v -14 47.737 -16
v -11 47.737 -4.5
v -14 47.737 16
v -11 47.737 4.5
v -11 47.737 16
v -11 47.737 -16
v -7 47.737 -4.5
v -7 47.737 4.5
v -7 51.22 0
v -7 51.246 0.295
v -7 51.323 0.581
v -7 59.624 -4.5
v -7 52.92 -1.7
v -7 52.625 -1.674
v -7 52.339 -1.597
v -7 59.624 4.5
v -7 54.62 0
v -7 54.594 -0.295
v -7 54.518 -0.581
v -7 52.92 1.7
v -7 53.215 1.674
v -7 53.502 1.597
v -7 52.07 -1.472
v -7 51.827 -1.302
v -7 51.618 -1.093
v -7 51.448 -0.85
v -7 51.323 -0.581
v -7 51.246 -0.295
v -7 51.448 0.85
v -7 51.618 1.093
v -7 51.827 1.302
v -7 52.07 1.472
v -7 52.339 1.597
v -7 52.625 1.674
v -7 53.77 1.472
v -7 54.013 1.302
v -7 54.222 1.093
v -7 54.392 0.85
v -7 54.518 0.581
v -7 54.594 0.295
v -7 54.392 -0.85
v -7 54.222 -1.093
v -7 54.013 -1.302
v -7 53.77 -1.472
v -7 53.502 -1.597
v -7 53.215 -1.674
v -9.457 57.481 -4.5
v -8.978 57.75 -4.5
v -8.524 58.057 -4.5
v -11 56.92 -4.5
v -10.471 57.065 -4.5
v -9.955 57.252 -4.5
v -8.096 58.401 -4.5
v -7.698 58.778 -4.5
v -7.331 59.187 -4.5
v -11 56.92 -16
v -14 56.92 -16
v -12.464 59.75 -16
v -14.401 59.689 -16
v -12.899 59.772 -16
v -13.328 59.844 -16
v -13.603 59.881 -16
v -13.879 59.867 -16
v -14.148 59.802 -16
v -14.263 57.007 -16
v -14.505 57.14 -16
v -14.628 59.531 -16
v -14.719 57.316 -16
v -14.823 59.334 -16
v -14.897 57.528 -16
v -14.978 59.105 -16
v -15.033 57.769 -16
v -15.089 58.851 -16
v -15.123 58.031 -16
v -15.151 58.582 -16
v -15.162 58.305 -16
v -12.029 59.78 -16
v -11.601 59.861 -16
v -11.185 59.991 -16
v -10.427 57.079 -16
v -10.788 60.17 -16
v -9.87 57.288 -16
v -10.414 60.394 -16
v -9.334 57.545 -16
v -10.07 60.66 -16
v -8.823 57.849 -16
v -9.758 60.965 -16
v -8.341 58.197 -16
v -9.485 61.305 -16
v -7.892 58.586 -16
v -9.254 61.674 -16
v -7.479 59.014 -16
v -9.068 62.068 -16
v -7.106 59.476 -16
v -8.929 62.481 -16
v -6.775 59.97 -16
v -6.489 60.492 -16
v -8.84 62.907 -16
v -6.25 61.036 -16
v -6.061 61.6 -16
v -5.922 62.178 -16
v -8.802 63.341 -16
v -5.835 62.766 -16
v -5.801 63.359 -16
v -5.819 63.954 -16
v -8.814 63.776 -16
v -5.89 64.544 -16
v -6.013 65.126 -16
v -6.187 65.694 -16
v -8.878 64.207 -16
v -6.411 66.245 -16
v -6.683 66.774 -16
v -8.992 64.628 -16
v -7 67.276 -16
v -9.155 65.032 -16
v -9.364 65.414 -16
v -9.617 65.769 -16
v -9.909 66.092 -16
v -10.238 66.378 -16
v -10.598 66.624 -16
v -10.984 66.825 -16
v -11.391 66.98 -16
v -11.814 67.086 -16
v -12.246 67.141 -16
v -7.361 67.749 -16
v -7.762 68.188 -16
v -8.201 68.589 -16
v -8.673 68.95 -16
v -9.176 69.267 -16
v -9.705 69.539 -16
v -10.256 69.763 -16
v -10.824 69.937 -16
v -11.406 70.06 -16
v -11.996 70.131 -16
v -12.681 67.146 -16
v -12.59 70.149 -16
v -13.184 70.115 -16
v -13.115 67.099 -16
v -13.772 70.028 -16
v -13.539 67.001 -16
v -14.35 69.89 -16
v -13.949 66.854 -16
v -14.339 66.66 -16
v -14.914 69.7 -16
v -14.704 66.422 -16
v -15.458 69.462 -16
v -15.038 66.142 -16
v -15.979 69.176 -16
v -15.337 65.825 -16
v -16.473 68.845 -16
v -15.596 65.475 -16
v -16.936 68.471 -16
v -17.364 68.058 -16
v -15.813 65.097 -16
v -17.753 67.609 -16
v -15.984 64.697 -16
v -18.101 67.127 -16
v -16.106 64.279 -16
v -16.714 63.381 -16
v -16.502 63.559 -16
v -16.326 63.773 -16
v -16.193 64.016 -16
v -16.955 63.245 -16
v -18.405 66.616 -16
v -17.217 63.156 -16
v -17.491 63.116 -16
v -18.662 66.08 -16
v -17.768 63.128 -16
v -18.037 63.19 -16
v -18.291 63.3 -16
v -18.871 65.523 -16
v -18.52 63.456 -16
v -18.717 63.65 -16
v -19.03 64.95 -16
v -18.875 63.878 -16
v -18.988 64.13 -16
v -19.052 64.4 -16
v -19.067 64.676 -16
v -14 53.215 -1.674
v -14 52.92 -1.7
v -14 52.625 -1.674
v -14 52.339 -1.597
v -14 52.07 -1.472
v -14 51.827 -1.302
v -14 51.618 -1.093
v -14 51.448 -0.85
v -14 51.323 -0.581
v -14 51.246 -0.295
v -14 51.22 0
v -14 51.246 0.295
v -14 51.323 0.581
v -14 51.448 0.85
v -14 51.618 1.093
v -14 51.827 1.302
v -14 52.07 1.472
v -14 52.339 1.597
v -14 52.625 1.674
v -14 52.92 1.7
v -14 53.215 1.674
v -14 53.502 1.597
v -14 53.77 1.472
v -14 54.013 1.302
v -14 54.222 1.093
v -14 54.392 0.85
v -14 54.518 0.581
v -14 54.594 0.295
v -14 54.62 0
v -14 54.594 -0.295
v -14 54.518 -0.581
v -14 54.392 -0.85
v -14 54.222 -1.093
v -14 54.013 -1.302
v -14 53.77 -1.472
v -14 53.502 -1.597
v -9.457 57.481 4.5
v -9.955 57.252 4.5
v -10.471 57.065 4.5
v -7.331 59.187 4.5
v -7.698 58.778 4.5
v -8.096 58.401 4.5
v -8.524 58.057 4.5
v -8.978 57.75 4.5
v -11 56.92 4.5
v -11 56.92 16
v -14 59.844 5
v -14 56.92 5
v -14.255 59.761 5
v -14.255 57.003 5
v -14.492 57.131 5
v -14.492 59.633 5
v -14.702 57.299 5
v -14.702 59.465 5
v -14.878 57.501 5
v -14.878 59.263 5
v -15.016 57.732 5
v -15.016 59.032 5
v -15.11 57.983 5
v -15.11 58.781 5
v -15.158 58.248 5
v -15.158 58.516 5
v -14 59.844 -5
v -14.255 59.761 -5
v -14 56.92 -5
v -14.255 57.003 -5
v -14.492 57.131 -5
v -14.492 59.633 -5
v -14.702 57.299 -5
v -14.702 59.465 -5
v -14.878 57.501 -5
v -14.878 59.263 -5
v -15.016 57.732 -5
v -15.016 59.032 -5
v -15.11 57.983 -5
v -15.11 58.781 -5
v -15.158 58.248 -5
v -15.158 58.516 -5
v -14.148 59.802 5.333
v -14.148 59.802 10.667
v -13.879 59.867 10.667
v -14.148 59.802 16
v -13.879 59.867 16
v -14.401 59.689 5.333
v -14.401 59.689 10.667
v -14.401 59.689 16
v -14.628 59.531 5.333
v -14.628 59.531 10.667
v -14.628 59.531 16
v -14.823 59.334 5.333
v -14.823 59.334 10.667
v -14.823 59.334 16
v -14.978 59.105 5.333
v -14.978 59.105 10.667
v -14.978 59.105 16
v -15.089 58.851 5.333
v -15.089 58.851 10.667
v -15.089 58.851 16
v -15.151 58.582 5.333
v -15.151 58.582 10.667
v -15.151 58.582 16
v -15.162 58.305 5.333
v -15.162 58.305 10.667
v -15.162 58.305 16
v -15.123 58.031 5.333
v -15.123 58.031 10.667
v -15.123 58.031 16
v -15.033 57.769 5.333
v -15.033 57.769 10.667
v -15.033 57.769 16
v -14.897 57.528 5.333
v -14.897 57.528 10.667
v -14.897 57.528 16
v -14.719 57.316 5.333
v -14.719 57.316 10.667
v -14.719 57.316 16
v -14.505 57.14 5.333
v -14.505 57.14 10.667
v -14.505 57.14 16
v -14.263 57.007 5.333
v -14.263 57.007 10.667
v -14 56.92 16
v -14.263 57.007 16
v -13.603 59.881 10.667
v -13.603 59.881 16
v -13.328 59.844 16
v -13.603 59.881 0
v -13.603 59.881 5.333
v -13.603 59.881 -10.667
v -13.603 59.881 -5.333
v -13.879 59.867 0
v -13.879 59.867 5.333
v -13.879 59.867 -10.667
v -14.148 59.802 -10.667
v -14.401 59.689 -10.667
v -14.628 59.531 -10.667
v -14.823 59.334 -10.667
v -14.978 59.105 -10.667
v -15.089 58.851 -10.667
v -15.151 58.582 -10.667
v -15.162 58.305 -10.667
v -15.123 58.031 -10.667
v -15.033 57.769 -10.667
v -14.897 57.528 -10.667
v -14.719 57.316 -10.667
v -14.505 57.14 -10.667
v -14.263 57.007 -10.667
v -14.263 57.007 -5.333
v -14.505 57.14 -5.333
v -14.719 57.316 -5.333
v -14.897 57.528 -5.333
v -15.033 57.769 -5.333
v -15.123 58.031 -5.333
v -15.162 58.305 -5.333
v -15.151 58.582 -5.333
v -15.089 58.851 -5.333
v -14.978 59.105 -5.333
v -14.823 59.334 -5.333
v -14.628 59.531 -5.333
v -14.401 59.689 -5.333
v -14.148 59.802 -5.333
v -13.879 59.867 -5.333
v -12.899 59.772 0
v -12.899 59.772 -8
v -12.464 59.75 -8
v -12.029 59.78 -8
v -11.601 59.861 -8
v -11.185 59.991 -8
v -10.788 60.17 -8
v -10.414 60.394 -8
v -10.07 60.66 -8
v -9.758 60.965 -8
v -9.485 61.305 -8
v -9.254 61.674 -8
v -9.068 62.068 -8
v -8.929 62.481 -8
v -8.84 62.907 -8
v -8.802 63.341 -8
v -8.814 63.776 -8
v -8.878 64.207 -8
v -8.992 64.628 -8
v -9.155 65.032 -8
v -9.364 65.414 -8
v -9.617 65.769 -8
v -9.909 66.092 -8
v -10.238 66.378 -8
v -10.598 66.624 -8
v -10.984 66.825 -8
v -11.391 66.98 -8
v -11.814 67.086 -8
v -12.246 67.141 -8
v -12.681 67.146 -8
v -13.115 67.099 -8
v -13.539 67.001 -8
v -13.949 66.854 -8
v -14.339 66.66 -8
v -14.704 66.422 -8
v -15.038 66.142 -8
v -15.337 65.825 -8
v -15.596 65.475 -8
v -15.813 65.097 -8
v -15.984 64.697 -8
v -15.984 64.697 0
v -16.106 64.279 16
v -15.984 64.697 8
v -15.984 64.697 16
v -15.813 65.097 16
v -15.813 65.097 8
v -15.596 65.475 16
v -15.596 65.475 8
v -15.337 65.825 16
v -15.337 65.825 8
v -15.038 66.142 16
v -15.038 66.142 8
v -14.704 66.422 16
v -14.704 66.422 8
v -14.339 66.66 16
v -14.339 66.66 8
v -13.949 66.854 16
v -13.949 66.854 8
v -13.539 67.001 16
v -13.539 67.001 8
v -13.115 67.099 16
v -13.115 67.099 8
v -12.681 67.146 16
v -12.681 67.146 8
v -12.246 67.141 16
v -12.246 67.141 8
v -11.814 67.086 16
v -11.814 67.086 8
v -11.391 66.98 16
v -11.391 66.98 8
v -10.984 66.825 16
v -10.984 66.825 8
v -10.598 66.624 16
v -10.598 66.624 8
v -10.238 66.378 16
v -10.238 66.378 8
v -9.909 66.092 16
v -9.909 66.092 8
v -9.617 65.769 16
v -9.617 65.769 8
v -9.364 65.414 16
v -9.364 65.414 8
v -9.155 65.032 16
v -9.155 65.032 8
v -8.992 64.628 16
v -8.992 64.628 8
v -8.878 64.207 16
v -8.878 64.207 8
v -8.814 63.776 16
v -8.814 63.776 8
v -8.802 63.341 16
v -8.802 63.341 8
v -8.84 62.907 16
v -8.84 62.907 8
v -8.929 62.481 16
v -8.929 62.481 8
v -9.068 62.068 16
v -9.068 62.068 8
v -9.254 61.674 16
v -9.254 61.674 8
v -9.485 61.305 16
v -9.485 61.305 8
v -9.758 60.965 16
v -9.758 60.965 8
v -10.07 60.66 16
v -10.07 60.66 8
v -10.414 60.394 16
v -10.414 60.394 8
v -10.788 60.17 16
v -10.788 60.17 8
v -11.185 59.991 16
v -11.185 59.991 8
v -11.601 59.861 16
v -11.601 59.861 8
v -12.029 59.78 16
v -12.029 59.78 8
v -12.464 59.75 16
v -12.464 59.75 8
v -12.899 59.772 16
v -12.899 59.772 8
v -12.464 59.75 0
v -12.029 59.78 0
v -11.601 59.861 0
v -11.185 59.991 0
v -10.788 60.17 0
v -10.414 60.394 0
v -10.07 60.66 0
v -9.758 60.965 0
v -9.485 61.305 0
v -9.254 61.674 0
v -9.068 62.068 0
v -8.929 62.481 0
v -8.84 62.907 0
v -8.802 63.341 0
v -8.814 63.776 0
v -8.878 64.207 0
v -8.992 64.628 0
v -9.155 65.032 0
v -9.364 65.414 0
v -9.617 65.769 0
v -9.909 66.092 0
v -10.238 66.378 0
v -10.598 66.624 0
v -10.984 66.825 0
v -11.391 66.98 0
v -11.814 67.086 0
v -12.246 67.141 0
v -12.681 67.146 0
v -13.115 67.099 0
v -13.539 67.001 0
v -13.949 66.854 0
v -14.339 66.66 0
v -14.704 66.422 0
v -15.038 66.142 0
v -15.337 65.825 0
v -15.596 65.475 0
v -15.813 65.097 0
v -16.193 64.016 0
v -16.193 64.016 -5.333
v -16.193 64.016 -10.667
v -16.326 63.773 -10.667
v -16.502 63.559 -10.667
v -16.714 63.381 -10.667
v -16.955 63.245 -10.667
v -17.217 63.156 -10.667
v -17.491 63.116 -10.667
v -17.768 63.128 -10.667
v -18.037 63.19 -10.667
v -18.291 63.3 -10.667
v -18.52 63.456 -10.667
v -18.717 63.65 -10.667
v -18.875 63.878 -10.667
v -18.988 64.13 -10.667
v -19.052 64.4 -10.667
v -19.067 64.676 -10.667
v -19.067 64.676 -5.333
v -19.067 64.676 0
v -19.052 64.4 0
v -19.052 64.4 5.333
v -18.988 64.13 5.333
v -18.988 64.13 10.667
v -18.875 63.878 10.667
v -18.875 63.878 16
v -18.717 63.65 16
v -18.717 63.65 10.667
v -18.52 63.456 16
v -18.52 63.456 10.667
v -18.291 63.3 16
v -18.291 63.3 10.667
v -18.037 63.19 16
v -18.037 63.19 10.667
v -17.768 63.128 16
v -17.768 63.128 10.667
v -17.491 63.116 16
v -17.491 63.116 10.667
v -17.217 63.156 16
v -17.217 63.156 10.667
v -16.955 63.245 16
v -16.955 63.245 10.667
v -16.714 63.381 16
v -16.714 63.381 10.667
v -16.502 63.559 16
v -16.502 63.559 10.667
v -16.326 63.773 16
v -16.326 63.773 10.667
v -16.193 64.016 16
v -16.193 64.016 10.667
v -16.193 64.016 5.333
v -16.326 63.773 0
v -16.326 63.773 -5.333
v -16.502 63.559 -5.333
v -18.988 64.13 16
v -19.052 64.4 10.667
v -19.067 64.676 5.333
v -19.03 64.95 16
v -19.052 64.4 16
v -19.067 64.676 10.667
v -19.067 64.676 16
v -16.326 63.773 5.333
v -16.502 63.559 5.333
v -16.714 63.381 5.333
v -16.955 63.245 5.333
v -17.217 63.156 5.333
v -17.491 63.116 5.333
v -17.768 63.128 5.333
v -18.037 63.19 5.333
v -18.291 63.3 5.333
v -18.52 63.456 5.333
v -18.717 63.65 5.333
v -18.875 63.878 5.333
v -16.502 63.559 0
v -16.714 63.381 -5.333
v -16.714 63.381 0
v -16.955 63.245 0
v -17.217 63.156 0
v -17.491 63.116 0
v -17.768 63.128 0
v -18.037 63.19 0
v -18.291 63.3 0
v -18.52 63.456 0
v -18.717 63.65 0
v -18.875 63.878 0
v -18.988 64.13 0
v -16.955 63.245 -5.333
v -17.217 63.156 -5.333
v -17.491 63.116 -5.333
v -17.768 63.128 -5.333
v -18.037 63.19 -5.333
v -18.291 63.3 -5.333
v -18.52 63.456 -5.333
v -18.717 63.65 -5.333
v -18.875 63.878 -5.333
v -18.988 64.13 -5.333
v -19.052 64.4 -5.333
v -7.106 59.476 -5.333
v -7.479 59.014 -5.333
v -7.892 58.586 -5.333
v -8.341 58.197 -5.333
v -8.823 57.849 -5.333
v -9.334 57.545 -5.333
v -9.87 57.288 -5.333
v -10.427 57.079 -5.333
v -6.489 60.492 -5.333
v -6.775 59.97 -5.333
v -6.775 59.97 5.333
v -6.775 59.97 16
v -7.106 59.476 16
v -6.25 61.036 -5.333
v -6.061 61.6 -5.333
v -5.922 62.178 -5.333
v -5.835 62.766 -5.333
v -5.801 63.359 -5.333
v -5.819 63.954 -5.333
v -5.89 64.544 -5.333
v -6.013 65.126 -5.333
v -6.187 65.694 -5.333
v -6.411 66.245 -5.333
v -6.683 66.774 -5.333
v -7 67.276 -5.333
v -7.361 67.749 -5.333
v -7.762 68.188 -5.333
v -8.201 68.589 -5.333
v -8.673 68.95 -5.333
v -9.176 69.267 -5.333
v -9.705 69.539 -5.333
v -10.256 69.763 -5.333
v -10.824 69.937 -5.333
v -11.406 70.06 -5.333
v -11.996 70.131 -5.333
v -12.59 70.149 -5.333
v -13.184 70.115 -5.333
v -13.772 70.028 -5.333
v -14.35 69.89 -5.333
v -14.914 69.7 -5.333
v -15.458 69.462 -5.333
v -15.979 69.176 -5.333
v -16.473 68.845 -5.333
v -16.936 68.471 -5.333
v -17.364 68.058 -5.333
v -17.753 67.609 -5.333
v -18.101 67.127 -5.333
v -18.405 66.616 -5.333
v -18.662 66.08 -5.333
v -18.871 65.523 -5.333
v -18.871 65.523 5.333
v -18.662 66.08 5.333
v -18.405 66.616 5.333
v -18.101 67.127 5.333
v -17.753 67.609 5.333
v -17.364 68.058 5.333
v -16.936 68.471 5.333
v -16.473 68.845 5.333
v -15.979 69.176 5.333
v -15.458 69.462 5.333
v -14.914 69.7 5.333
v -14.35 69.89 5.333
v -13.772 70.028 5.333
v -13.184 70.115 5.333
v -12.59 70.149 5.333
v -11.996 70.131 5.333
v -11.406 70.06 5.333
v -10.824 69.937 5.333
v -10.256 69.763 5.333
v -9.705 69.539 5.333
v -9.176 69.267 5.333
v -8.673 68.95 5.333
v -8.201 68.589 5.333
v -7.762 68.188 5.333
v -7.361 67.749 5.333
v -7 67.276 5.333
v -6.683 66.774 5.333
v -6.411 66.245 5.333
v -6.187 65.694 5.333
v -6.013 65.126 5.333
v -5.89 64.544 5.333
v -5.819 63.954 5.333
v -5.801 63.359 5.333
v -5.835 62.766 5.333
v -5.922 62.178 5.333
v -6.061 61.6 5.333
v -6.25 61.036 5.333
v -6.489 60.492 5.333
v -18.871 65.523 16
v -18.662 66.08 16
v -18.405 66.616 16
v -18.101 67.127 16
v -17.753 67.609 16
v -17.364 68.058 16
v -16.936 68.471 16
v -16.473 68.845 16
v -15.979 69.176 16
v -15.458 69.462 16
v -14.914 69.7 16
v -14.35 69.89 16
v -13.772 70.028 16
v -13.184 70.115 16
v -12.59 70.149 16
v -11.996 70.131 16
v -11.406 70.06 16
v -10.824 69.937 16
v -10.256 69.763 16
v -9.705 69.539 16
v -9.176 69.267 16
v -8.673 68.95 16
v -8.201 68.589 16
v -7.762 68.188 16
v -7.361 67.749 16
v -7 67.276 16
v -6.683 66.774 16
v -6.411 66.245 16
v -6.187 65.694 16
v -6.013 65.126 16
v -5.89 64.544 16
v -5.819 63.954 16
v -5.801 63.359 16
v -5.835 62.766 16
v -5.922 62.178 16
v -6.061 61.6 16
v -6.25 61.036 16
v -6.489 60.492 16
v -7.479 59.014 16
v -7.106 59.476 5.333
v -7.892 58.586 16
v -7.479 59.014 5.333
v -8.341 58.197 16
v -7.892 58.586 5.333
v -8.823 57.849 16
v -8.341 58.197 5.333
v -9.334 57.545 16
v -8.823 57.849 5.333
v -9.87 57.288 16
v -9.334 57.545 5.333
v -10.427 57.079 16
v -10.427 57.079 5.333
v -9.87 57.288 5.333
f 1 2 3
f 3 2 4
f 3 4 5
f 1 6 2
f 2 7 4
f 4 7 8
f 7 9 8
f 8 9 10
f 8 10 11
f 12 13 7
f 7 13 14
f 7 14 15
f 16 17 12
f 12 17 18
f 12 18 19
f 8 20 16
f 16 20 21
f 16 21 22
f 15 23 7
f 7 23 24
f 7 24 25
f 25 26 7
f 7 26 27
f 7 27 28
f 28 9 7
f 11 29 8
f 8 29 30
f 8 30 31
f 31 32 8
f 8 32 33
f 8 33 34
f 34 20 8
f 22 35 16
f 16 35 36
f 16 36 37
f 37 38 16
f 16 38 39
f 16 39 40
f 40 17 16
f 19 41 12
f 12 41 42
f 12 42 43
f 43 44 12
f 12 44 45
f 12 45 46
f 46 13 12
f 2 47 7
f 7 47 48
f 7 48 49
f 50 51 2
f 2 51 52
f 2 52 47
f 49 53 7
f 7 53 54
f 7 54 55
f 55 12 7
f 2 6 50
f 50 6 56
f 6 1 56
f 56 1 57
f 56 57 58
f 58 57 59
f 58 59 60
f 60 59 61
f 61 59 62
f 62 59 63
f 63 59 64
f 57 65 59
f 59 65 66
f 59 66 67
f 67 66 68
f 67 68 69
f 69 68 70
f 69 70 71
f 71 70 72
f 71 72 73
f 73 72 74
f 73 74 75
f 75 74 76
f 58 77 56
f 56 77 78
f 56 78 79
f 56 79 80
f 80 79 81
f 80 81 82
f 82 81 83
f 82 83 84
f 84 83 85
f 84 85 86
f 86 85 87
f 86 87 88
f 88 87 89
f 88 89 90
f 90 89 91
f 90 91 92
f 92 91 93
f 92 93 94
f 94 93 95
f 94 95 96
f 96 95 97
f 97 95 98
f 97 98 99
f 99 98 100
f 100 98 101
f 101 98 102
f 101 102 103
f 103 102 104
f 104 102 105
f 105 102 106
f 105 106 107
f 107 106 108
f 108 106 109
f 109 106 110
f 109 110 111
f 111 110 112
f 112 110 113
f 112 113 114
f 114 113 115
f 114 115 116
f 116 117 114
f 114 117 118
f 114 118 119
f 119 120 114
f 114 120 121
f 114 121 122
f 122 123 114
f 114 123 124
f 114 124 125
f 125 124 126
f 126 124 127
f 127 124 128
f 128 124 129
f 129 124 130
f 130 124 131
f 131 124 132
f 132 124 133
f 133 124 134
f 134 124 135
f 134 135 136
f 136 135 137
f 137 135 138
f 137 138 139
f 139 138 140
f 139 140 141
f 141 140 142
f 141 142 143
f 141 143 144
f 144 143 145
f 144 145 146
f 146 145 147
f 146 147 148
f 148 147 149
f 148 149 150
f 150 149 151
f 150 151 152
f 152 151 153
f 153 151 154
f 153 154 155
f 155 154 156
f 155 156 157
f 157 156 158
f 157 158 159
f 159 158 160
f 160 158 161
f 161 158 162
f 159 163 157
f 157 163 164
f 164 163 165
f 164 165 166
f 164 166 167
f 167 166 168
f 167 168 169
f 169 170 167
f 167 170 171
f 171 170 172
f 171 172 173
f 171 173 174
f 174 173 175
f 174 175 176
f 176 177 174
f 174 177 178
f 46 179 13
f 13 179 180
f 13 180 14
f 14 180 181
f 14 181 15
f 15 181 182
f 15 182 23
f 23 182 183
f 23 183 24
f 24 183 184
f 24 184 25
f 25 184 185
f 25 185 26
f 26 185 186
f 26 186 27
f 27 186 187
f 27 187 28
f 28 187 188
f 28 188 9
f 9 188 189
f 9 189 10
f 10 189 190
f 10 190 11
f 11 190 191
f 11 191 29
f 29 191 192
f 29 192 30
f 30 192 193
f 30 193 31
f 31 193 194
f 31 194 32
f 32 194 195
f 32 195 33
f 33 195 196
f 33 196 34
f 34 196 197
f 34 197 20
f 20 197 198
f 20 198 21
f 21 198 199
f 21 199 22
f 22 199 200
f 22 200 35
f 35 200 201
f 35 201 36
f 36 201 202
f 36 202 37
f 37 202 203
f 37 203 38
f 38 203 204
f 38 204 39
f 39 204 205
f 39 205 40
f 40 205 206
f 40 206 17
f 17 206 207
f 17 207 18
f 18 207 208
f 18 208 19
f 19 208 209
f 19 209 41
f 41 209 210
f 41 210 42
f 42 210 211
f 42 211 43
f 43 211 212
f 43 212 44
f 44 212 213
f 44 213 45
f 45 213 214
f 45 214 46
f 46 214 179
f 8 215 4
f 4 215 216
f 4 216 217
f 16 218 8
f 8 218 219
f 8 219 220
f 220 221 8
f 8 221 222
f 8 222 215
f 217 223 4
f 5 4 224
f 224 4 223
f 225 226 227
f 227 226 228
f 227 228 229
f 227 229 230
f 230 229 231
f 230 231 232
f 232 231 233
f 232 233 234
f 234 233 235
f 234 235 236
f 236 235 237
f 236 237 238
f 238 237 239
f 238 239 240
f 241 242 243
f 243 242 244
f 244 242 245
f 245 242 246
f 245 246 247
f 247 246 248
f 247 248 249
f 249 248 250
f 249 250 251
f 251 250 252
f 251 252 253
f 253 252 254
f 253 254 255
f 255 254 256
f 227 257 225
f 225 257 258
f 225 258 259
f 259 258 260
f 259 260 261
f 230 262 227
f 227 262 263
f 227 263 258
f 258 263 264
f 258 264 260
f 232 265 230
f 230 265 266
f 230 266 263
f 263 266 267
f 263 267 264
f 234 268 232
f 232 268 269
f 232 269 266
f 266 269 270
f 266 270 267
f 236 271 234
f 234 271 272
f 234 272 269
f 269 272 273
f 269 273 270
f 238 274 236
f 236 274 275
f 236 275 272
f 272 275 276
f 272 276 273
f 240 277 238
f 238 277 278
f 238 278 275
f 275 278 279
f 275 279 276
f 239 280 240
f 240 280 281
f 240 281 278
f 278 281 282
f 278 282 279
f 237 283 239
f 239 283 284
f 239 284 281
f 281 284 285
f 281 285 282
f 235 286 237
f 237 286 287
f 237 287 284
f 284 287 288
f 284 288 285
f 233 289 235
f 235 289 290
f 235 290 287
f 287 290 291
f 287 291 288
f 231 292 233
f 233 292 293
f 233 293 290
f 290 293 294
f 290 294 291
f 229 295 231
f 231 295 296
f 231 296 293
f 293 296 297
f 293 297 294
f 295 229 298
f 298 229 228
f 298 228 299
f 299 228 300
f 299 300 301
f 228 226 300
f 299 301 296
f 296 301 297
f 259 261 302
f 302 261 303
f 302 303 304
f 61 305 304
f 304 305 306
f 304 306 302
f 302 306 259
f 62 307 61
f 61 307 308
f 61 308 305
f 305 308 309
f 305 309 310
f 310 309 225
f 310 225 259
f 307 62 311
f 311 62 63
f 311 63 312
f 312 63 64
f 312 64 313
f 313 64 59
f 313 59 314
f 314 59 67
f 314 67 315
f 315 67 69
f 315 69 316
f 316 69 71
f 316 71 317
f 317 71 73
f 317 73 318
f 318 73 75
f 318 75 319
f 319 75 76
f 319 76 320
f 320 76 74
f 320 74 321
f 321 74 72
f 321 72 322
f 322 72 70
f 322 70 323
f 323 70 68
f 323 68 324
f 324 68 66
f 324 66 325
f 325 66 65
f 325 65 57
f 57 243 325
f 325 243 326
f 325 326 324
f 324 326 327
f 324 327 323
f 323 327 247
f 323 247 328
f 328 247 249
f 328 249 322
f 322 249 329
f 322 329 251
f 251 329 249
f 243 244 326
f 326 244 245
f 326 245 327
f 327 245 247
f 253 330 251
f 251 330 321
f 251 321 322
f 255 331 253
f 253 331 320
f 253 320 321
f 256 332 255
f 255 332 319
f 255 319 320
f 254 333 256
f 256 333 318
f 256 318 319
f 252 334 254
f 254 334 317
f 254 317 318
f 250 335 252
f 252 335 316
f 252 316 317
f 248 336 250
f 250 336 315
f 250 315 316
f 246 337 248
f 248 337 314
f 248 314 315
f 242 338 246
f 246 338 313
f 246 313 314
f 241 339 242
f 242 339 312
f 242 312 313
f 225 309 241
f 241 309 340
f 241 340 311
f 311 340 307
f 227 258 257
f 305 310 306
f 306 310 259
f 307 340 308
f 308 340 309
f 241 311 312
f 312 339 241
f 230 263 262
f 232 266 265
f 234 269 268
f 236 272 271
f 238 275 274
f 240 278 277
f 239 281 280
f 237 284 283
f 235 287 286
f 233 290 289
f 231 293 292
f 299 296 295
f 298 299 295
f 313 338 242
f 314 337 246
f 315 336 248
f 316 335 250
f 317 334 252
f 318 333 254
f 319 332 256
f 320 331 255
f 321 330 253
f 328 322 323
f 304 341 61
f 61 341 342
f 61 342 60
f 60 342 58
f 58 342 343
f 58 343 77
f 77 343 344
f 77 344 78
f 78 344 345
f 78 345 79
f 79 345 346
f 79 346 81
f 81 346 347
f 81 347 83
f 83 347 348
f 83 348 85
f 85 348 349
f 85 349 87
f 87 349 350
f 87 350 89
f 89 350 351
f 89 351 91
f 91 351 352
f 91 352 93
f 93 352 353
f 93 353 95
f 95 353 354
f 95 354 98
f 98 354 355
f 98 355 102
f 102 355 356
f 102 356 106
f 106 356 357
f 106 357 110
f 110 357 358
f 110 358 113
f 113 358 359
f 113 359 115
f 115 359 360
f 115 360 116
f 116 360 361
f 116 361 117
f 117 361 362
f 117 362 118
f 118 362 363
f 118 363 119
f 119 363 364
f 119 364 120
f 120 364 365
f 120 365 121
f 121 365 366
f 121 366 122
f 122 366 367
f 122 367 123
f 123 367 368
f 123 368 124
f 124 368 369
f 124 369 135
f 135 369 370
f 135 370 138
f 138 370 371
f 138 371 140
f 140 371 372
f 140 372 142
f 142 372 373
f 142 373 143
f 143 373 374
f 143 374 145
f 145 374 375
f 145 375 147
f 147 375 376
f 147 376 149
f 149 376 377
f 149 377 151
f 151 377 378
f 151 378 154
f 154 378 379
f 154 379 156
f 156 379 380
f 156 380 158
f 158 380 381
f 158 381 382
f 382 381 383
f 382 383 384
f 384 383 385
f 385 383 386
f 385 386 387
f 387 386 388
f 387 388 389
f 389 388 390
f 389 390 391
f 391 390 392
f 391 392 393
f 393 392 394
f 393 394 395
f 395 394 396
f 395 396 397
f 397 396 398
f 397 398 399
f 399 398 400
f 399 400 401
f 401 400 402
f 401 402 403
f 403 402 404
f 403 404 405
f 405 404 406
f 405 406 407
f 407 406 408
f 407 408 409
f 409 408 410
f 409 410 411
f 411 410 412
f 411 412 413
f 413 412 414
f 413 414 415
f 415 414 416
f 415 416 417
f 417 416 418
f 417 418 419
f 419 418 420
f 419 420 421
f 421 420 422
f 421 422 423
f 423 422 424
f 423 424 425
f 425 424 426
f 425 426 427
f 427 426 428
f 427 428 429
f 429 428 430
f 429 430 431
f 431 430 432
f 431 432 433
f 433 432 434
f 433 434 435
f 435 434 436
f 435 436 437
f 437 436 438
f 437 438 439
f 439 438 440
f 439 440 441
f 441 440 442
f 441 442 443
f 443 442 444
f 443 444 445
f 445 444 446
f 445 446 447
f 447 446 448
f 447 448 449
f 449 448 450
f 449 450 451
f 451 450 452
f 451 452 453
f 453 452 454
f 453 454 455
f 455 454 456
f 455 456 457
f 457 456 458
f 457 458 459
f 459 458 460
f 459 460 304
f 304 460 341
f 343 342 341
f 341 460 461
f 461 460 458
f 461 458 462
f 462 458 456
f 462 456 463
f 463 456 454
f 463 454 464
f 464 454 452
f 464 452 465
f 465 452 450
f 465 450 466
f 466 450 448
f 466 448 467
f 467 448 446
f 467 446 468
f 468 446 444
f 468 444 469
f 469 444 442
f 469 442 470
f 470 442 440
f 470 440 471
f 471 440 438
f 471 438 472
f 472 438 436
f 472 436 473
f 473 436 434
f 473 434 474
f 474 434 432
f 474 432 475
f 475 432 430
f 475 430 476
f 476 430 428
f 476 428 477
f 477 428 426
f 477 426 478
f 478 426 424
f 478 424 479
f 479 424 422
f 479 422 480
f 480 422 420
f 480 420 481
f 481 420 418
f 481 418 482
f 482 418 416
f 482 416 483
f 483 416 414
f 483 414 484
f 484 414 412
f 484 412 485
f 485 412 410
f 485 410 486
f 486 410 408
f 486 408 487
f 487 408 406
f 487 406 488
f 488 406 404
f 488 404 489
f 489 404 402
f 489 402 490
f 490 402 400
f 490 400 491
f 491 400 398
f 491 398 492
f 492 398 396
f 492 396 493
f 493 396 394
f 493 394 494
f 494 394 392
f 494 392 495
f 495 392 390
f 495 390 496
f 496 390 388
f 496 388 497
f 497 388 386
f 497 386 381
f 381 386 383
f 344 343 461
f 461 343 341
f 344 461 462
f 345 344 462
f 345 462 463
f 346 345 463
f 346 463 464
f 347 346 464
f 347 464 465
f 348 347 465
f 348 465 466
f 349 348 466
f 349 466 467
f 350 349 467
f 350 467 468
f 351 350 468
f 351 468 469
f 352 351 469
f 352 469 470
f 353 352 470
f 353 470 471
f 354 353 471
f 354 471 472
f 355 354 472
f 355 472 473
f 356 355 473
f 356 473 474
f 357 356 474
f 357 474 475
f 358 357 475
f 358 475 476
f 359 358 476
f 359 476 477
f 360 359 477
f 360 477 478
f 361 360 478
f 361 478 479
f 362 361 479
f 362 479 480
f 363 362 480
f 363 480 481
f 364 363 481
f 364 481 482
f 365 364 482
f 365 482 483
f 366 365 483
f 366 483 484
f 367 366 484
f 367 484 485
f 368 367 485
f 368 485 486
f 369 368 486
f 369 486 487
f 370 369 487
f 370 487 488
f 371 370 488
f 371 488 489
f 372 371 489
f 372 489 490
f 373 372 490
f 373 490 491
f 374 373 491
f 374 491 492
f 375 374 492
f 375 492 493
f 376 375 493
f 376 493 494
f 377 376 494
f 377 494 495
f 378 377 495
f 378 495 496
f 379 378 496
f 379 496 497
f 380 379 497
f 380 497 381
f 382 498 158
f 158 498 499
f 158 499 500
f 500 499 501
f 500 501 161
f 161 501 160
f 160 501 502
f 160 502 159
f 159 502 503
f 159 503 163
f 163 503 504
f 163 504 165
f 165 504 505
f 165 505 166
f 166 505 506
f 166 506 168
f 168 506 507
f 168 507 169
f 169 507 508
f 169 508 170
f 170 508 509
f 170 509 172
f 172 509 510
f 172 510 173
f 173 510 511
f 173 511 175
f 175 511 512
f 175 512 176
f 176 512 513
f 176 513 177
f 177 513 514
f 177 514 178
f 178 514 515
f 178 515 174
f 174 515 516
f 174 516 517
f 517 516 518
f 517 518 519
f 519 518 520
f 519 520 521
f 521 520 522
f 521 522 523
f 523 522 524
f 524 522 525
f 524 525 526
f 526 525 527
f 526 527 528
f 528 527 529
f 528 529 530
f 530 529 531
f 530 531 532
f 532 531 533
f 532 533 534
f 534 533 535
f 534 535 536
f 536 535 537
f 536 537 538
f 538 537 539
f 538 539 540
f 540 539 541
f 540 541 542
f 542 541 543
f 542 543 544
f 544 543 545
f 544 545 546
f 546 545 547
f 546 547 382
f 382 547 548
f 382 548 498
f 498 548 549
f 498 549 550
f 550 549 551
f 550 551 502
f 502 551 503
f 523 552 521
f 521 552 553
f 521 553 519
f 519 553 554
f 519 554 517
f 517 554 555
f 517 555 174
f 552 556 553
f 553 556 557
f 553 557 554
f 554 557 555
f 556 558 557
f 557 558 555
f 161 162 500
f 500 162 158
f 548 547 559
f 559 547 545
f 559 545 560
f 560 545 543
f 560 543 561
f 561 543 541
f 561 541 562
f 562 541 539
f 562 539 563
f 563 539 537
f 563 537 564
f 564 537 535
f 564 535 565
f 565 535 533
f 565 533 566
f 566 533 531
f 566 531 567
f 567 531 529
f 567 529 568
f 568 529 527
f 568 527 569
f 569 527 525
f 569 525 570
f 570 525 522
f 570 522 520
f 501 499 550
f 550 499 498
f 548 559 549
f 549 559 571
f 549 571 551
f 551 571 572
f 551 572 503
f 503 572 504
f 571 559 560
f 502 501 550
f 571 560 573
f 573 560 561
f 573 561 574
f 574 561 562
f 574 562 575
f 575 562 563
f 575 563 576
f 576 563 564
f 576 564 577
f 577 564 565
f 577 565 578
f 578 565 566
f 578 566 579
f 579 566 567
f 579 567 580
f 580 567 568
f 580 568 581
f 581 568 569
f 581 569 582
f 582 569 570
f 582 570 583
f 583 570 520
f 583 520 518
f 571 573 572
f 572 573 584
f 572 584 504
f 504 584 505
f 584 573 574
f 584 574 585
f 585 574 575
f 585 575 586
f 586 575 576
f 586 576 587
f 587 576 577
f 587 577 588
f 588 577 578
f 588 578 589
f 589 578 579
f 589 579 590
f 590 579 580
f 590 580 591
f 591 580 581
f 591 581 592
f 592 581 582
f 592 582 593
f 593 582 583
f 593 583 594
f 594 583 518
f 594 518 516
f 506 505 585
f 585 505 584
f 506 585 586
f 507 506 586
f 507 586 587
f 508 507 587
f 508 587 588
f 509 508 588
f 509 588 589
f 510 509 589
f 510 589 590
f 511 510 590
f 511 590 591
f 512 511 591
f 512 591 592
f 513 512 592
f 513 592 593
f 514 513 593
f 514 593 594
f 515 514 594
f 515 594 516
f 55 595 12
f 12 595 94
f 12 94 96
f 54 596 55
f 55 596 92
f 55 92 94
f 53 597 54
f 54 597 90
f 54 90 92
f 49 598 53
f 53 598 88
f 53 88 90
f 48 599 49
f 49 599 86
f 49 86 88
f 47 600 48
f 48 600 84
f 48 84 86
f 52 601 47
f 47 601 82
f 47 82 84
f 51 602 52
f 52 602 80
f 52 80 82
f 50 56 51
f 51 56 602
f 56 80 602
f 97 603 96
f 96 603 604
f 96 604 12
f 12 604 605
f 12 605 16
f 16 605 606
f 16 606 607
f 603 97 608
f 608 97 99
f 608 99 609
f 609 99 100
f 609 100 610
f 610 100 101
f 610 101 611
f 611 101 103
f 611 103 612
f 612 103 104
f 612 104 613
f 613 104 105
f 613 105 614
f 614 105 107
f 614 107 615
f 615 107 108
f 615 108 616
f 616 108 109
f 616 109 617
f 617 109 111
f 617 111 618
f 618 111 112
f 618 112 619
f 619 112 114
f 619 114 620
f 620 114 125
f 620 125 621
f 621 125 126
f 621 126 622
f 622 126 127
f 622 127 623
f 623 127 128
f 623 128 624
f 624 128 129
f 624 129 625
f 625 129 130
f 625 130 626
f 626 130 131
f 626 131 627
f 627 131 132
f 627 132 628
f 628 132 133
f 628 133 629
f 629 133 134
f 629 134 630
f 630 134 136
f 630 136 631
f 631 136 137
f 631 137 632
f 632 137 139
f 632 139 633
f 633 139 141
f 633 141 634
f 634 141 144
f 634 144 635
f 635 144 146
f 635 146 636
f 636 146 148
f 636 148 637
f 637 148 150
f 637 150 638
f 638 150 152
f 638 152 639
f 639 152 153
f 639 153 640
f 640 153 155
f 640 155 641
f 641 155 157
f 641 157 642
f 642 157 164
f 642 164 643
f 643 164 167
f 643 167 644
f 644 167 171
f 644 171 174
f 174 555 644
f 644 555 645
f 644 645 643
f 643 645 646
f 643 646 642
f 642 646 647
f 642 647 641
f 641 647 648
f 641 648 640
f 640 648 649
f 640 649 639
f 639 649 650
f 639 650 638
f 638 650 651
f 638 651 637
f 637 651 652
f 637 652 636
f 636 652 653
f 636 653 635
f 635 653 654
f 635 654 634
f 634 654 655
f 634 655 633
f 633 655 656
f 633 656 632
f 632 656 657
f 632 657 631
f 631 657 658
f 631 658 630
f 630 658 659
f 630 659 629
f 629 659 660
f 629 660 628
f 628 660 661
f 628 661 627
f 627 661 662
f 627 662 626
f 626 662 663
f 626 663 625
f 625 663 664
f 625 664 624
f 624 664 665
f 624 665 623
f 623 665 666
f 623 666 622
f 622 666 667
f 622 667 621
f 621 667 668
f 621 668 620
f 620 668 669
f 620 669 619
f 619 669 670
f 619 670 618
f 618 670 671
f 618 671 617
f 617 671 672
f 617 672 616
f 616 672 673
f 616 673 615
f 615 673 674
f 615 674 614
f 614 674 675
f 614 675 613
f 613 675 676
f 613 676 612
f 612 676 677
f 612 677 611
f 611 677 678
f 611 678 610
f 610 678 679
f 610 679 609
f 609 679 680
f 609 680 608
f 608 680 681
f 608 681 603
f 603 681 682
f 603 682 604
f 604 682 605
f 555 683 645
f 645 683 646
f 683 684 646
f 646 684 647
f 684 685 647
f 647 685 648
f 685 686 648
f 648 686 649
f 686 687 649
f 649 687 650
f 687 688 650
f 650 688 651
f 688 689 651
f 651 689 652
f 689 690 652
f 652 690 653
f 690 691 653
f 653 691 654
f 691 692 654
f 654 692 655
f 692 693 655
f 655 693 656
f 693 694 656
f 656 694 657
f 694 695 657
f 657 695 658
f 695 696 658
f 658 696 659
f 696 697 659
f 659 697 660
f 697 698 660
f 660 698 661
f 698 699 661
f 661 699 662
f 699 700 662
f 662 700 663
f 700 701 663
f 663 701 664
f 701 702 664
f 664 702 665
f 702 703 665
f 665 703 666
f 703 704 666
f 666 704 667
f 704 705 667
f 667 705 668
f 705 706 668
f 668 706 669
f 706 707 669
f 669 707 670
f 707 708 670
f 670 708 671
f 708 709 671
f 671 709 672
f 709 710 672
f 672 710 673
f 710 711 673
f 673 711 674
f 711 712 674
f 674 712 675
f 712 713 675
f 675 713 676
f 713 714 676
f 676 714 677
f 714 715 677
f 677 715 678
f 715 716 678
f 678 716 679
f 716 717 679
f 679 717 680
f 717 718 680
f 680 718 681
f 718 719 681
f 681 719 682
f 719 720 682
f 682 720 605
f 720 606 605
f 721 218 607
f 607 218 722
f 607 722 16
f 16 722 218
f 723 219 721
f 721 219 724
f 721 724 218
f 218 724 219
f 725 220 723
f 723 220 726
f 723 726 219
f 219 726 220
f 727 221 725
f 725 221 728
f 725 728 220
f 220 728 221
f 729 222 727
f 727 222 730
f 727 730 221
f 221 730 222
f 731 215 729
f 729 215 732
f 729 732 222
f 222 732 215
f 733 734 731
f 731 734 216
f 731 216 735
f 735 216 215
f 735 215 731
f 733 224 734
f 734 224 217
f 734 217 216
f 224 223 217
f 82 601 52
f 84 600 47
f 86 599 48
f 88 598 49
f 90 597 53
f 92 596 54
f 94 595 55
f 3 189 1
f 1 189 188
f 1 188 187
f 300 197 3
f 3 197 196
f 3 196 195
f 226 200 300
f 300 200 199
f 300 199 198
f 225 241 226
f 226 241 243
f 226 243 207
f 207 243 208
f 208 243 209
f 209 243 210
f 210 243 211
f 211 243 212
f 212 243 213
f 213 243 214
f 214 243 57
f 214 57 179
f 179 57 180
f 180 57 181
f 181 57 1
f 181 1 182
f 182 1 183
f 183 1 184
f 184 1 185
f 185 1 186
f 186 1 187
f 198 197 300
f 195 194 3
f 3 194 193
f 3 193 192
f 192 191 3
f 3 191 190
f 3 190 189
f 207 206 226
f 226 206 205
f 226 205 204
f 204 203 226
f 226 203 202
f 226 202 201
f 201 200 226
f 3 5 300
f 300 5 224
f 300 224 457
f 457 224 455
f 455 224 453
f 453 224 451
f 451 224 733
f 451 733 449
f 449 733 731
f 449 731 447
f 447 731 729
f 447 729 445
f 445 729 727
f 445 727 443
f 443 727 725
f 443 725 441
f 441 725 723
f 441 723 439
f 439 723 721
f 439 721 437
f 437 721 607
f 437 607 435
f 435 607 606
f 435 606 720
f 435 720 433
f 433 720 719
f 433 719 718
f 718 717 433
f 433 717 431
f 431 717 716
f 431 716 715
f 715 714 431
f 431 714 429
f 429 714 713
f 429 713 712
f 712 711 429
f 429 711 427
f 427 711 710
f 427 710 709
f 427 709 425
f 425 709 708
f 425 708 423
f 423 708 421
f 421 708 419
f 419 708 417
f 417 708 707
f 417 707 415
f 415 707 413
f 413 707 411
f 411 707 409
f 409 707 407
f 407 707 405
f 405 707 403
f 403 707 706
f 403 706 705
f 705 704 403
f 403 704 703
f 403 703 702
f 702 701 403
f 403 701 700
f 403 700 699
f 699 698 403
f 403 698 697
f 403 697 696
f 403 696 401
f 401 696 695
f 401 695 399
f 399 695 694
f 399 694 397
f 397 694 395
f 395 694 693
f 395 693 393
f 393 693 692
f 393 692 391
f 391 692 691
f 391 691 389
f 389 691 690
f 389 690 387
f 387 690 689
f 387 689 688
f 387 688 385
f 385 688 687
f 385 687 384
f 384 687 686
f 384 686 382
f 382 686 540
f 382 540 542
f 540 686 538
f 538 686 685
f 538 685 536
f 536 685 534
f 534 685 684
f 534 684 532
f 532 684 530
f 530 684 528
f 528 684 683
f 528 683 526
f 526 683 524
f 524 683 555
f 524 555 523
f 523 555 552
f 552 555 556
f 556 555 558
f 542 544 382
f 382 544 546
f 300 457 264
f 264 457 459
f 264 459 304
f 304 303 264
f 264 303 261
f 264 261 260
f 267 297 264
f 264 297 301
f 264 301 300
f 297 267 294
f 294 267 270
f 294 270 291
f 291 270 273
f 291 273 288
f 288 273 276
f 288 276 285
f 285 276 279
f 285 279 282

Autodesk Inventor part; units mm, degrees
ref_plane "YZ Plane" through (0, 0, 0) normal (1, 0, 0) x (0, 1, 0)
sketch "Sketch1" plane through (0, 0, 0) normal (0, 1, 0) x (-1, 0, 0)
  line L0 (11, -16) -> (-11, -16)
  line L1 (-11, -16) -> (-11, 16)
  line L2 (-11, 16) -> (11, 16)
  line L3 (11, 16) -> (11, -16)
  line L4 (11, -16) -> (-11, 16) construction
  line L5 (-11, -16) -> (11, 16) construction
  circle A0 centre (-2, 6.5) radius 4.8
  line L6 (-2, 6.5) -> (-2, -6.5)
  circle A1 centre (-2, -6.5) radius 4.8
  line L7 (-2, 11.3) -> (-11, 11.3)
  line L8 (-2, 1.7) -> (-11, 1.7)
  line L9 (-2, -1.7) -> (-11, -1.7)
  line L10 (-2, -11.3) -> (-11, -11.3)
  point P0 (0, 0)
  point P1 (-2, 0)
  dimension "d0" = 22
  dimension "d1" = 32
  dimension "d2" = 9.6
  dimension "d3" = 13
  dimension "d4" = 9.6
extrude "Extrusion1" add sketch "Sketch1" along normal blind 2 contours L0 L1 L10 A1 L6 A0 L7 L2 L3 | L1 L8 L6 L9
sketch "Sketch2" plane through (0, 0, 0) normal (0, -1, 0) x (1, 0, 0)
  line L0 (-11, 16) -> (11, 16) projected
  line L1 (11, 16) -> (-11, 16)
  line L2 (-11, -16) -> (-11, 16) projected
  line L3 (-11, 16) -> (-11, -16)
  line L4 (11, -16) -> (-11, -16) projected
  line L5 (-11, -16) -> (11, -16)
  line L6 (11, -16) -> (11, -14)
  line L7 (11, -11.3) -> (11, -16) projected
  line L8 (11, -14) -> (-5, -14)
  line L9 (-5, -14) -> (-5, 14)
  line L10 (-5, 14) -> (11, 14)
  line L11 (11, 16) -> (11, 11.3) projected
  point P0 (0, 0)
  dimension "d7" = 2
  dimension "d8" = 16
  dimension "d9" = 28
extrude "Extrusion2" add sketch "Sketch2" along normal blind 2.75
sketch "Sketch3" plane through (-11, 2, -16) normal (-1, 0, 0) x (0, 0, 1)
  line L0 (0, 0) -> (0, -4.75) projected
  line L1 (0, -4.75) -> (32, -4.75)
  line L2 (32, -4.75) -> (32, 49.75)
  line L3 (32, 49.75) -> (0, 49.75)
  line L4 (0, 49.75) -> (0, -4.75)
  point P0 (16, -2)
  dimension "d12" = 54.5
extrude "Extrusion3" add sketch "Sketch3" along normal blind 3
sketch "Sketch4" plane through (0, -2.75, 0) normal (0, -1, 0) x (1, 0, 0)
  line L0 (11, 16) -> (11, 11.3) projected
  line L1 (11, 16) -> (-39, 16)
  line L2 (-39, 16) -> (-39, -16)
  line L3 (-39, -16) -> (11, -16)
  line L4 (11, -16) -> (11, 16)
  point P0 (0, 0)
  dimension "d15" = 50
extrude "Extrusion4" add sketch "Sketch4" along normal blind 2
sketch "Sketch5" plane through (-5, 0, 14) normal (1, 0, 0) x (0, 0, -1)
  line L0 (0, 0) -> (0, -2.75) projected
  line L1 (30, -2.75) -> (-2, -2.75) projected
  line L2 (0, 0) -> (2.9896, 0)
  line L3 (2.9896, 0) -> (2.9896, -2.75)
  line L4 (2.9896, -2.75) -> (0, -2.5)
  line L5 (0, -2.5) -> (0, 0)
  point P0 (14, 0)
  dimension "d18" = 3
extrude "Extrusion5" cut sketch "Sketch5" against normal up to surface (9 mm away)
sketch "Sketch6" plane through (11, 0, 1.7) normal (1, 0, 0) x (0, 0, -1)
  line L0 (0, 0) -> (0, 2) projected
  line L1 (3.4, 0) -> (3.4, 2) projected
  line L2 (0, 1) -> (3.4, 1)
  line L3 (3.4, 1) -> (3.4, 2)
  line L4 (3.4, 2) -> (0, 2)
  line L5 (0, 2) -> (0, 1)
  point P0 (1.7, 0)
extrude "Extrusion6" cut sketch "Sketch6" against normal blind 2.2
sketch "Sketch8" plane through (-14, 2, -16) normal (-1, 0, 0) x (0, 0, 1)
  circle A0 centre (24.6, 39.75) radius 2.75
  circle A1 centre (24.6, 39.75) radius 1.4
  line L0 (4, 47.25) -> (28, 47.25) construction
  line L1 (28, 47.25) -> (28, -1.75) construction
  line L2 (28, -1.75) -> (4, -1.75) construction
  line L3 (4, -1.75) -> (4, 47.25) construction
  circle A2 centre (7.4, 5.75) radius 2.75
  circle A3 centre (7.4, 5.75) radius 1.4
  line L4 (4, 47.25) -> (28, -1.75) construction
  line L5 (32, -4.75) -> (32, -6.75) construction
  line L6 (32, 49.75) -> (0, 49.75) construction
  line L7 (0, -4.75) -> (32, 49.75) construction
  point P0 (16, -2)
  point P1 (16, 22.75)
  point P2 (16, 22.5)
  dimension "d24" = 5.5
  dimension "d25" = 2.8
  dimension "d26" = 24
  dimension "d27" = 49
  dimension "d28" = 3.4
  dimension "d29" = 7.5
  dimension "d30" = 5.5
  dimension "d31" = 2.8
  dimension "d32" = 3.4
  dimension "d33" = 7.5
extrude "Extrusion7" add sketch "Sketch8" along normal blind 7
sketch "Sketch9" plane through (0, 0, 0) normal (0, 0, 1) x (1, 0, 0)
  line L0 (-14, -2.75) -> (-14, 51.75) projected
  line L1 (-12.5, 56.75) -> (-12.5, 54.25) construction
  line L2 (-12.25, 56.75) -> (-12.25, 54.25)
  line L3 (-12.25, 54.25) -> (-12.75, 54.25)
  line L4 (-12.75, 54.25) -> (-12.75, 56.75)
  line L5 (-12.75, 56.75) -> (-12.25, 54.25) construction
  line L6 (-12.25, 56.75) -> (-12.75, 54.25) construction
  circle A0 centre (-12.5, 63.45) radius 6.7
  line L7 (-12.5, 63.45) -> (-12.5, 56.75) construction
  line L8 (-12.25, 56.75) -> (-12.25, 59.7585)
  line L9 (-12.75, 59.7585) -> (-12.75, 56.75)
  line L10 (-12.25, 59.7585) -> (-12.25, 70.1453)
  line L11 (-12.25, 70.1453) -> (-12.75, 70.1453)
  line L12 (-12.75, 70.1453) -> (-12.75, 59.7585)
  line L13 (-12.5, 63.45) -> (-5.8, 63.45) construction
  line L14 (-12.5, 63.45) -> (-5.8, 63.45) construction
  line L15 (-11, 51.75) -> (-14, 51.75) projected
  line L16 (-14, 51.75) -> (-11, 51.75)
  line L17 (-11, 51.75) -> (-11, 56.75)
  line L18 (-11, 56.75) -> (-14, 56.75)
  line L19 (-14, 56.75) -> (-14, 51.75)
  line L20 (-14, 56.75) -> (-11, 56.75)
  line L21 (-11, 56.75) -> (-11, 56.9201)
  line L22 (-11, 56.9201) -> (-14, 56.9201)
  line L23 (-14, 56.9201) -> (-14, 56.75)
  line L24 (-12.5, 63.45) -> (-5.8, 63.45) construction
  line L25 (-12.5, 63.45) -> (-5.8, 63.45) construction
  line L26 (-12.5, 63.45) -> (-5.8, 63.45) construction
  circle A1 centre (-12.5, 63.45) radius 3.7
  line L27 (-14, 56.9201) -> (-13.3284, 59.8439)
  line L28 (-12.5, 63.45) -> (-5.8, 63.45) construction
  circle A2 centre (-13.6642, 58.382) radius 1.5
  line L29 (-12.5, 63.45) -> (-7.7359, 63.45) construction
  line L30 (-19.0299, 64.9503) -> (-16.106, 64.2785)
  circle A3 centre (-17.5679, 64.6144) radius 1.5
  point P0 (0, 0)
  point P1 (-12.5, 55.5)
  point P2 (-12.75, 56.7547)
  point P3 (-12.25, 56.7547)
  point P4 (-19.2, 63.45)
  point P5 (-17.2376, 68.1876)
  dimension "d47" = 0.5
  dimension "d50" = 5
  dimension "d128" = 7.4
  dimension "d130" = 13.4
extrude "Extrusion8" add sketch "Sketch9" along normal mid plane 32 contours L18 L17 L15 L19 L4 L3 L2 | L18 A0 L8 | L8 A0 L21 L18 | L2 L3 L4 L18 | L8 L22 A0 | A0 L9 L22 L8 | L18 L9 A0 | L22 L8 A2 A1 L10 A0 | L22 L9 A2 L8 | L9 L18 L23 A0 | A0 A2 L22 L9 | A2 L9 L8 | L8 A2 | L22 A2 L9 | L27 A2 L9 L22 | A2 L27 | L22 A2 | L11 A0 | L10 A1 L12 L11 | A2 L9 A1 L8 | A3 L30 | A0 L12 A1 A3 | L30 A3 | A1 L9 A2
sketch "Sketch10" plane through (-11, 2, 16) normal (0, 0, 1) x (1, 0, 0)
  line L0 (-1.25, 52.25) -> (-1.25, 37.25)
  line L1 (-1.25, 37.25) -> (-1.75, 37.25)
  line L2 (-1.75, 37.25) -> (-1.75, 52.25)
  arc A0 (-2.2836, 58.0388) -> (-4.9111, 62.2338) centre (-1.5, 61.45) ccw projected
  line L3 (-1.75, 37.25) -> (19.102, 37.25) construction
  arc A1 (-2.2836, 58.0388) -> (-4.9111, 62.2338) centre (-1.5, 61.45) ccw projected
  line L4 (-1.25, 37.25) -> (19.602, 37.25) construction
  point P0 (11, -2)
  point P1 (-3.9749, 63.9249)
  point P2 (-1.75, 57.9589)
  point P3 (-1.25, 57.9589)
  point P4 (0.9749, 63.9249)
  point P5 (-5, 61.45)
  dimension "d51" = 15
extrude "Extrusion9" [suppressed]
sketch "Sketch11" plane through (0, 0, 0) normal (0, 0, 1) x (1, 0, 0)
  line L0 (-12.5, 63.45) -> (-18.3024, 60.1)
  line L1 (-14, 56.9201) -> (-14, 62.9804)
  circle A0 centre (-12.5, 63.45) radius 6.7
  point P0 (0, 0)
  point P1 (-14, 62.584)
extrude "Extrusion10" cut sketch "Sketch11" along normal mid plane 10 contours L1 A0 L0 picked at (-14.4333, 58.9557)
sketch "Sketch13" plane through (0, 2, 0) normal (0, 1, 0) x (1, 0, 0)
  line L0 (-11, 16) -> (-11, -16) projected
  line L1 (-11, 0) -> (-9, 0) construction
  line L2 (-11, 4.5) -> (-7, 4.5)
  line L3 (-7, 4.5) -> (-7, -4.5)
  line L4 (-7, -4.5) -> (-11, -4.5)
  line L5 (-11, -4.5) -> (-11, 4.5)
  line L6 (-11, 4.5) -> (-7, -4.5) construction
  line L7 (-7, 4.5) -> (-11, -4.5) construction
  point P0 (0, 0)
  point P1 (-11, -4.5)
  dimension "d66" = 2
  dimension "d67" = 4
  dimension "d68" = 9
extrude "Extrusion12" add sketch "Sketch13" along normal up to surface
sketch "Sketch12" plane through (-14, 2, -16) normal (-1, 0, 0) x (0, 0, 1)
  line L0 (0, 54.9201) -> (32, 54.9201) projected
  line L1 (16, 54.9201) -> (16, 50.9201) construction
  circle A0 centre (16, 50.9201) radius 1.7
  point P0 (16, -2)
  dimension "d62" = 4
  dimension "d63" = 3.4
extrude "Extrusion11" cut sketch "Sketch12" against normal through all
sketch "Sketch14" plane through (-7, 2, 4.5) normal (1, 0, 0) x (0, 0, -1)
  circle A0 centre (4.5, 50.9201) radius 2.9
  point P0 (4.5, -2)
  point P1 (4.5, 50.9201)
  dimension "d96" = 5.8
extrude "Extrusion13" [suppressed]
sketch "Sketch15" plane through (-14, 2, -16) normal (-1, 0, 0) x (0, 0, 1)
  line L0 (0, 28.85) -> (6, 28.85) construction
  line L1 (6, 28.85) -> (6, 16.65) construction
  line L2 (6, 16.65) -> (0, 16.65) construction
  line L3 (0, 16.65) -> (0, 28.85) construction
  line L4 (0, -4.75) -> (0, 54.9201) projected
  line L5 (0, 28.85) -> (6, 28.85)
  line L6 (6, 28.85) -> (6, 30.85)
  line L7 (6, 30.85) -> (0, 30.85)
  line L8 (0, 30.85) -> (0, 28.85)
  line L9 (6, 16.65) -> (0, 16.65)
  line L10 (0, 16.65) -> (0, 14.65)
  line L11 (0, 14.65) -> (6, 14.65)
  line L12 (6, 14.65) -> (6, 16.65)
  circle A0 centre (24.6, 39.75) radius 1.4 projected
  circle A1 centre (7.4, 5.75) radius 1.4 projected
  line L13 (24.6, 39.75) -> (7.4, 5.75)
  line L14 (16, 22.75) -> (-10.8534, 22.75) construction
  line L15 (6, 30.85) -> (8, 30.85)
  line L16 (8, 30.85) -> (8, 14.65)
  line L17 (8, 14.65) -> (6, 14.65)
  line L18 (6, 14.65) -> (6, 30.85)
  point P0 (16, -2)
  point P1 (0, 22.75)
  dimension "d78" = 6
  dimension "d79" = 12.2
  dimension "d80" = 2
  dimension "d81" = 2
  dimension "d101" = 2
extrude "Extrusion14" add sketch "Sketch15" along normal blind 6 contours L4 L9 L12 L11 | L4 L7 L6 L5
sketch "Sketch20" plane through (-14, 2, -16) normal (-1, 0, 0) x (0, 0, 1)
  line L0 (6, 14.65) -> (6, 16.65) projected
  line L1 (6.0001, 28.8153) -> (6, 16.65) construction
  line L2 (5, 22.75) -> (6, 22.75) construction
  line L3 (5, 24.75) -> (7, 24.75)
  line L4 (7, 24.75) -> (7, 20.75)
  line L5 (7, 20.75) -> (5, 20.75)
  line L6 (5, 20.75) -> (5, 24.75)
  line L7 (5, 24.75) -> (7, 20.75) construction
  line L8 (7, 24.75) -> (5, 20.75) construction
  line L9 (0, 16.65) -> (0, 28.85) projected
  line L10 (0, 22.75) -> (5, 22.75) construction
  point P0 (16, -2)
  dimension "d102" = 1
  dimension "d103" = 2
  dimension "d104" = 4
  dimension "d109" = 5
extrude "Extrusion17" add sketch "Sketch20" along normal blind 1
sketch "Sketch21" plane through (-20, 2, -16) normal (-1, 0, 0) x (0, 0, 1)
  line L0 (0, 54.9201) -> (0, 0) projected
  line L1 (6, 16.65) -> (6, 14.65) projected
  line L2 (0, 30.85) -> (6, 30.85)
  line L3 (6, 30.85) -> (6, 14.65)
  line L4 (6, 14.65) -> (0, 14.65)
  line L5 (0, 14.65) -> (0, 30.85)
  line L6 (6, 30.85) -> (0, 30.85) projected
  point P0 (16, -2)
  point P1 (0, 14.65)
extrude "Extrusion18" add sketch "Sketch21" along normal blind 1
ref_plane "Work Plane1" through (0, -19.75, 0) normal (0, -1, 0) x (1, 0, 0)
sketch "Sketch16" plane through (0, -19.75, 0) normal (0, -1, 0) x (1, 0, 0)
  line L0 (11, -16) -> (11, 16) projected
  line L1 (11, 16) -> (-39, 16) projected
  line L2 (-39, 16) -> (-39, -16) projected
  line L3 (-39, -16) -> (11, -16) projected
  line L4 (-39, -16) -> (11, -16) projected
  line L5 (-14, 16) -> (-39, 16) projected
  line L6 (11, -16) -> (-39, 16) construction
  circle A0 centre (-14, 0) radius 10.4
  circle A1 centre (-14, 0) radius 13.4
  point P0 (0, 0)
  dimension "d85" = 20.8
  dimension "d86" = 26.8
extrude "Extrusion15" add sketch "Sketch16" along normal blind 40 contours A1
sketch "Sketch17" plane through (0, -4.75, 0) normal (0, -1, 0) x (1, 0, 0)
  line L0 (11, -16) -> (11, 16) projected
  line L1 (11, 16) -> (-39, 16) projected
  line L2 (-39, 16) -> (-39, -16) projected
  line L3 (-39, -16) -> (11, -16) projected
  point P0 (0, 0)
loft "Loft1" add profiles "Sketch17" section 1 edges at (-27.4, -19.75, 0)
sketch "Sketch18" plane through (0, 0, 0) normal (0, 0, 1) x (1, 0, 0)
  line L0 (-3.6, -19.75) -> (-24.4, -19.75) projected
  line L1 (-14, -19.75) -> (-3.6, -30.15)
  line L2 (-3.6, -59.75) -> (-3.6, -19.75) projected
  line L3 (-14, -19.75) -> (0.7078, -19.75) construction
  line L4 (-14, -19.75) -> (-14, -37.459) construction
  point P0 (0, 0)
  dimension "d93" = 45
revolve "Revolution1" add sketch "Sketch18" angle 360 about axis through (-14, -19.75, 0) along (0, -1, 0)
fillet "Fillet1" [suppressed]
ref_plane "Work Plane2" through (0, 70.15, 0) normal (0, 1, 0) x (-1, 0, 0)
sketch "Sketch19" plane through (0, 70.15, 0) normal (0, 1, 0) x (-1, 0, 0)
  line L0 (5.8, -16) -> (5.8, 16) projected
  line L1 (5.8, 0) -> (19.2, 0)
  circle A0 centre (12.5, 0) radius 1
  point P0 (0, 0)
  dimension "d98" = 2
extrude "Extrusion16" [suppressed]
sketch "Sketch22" plane through (0, 0, 0) normal (0, 0, 1) x (1, 0, 0)
  line L0 (-27.4, -59.75) -> (-0.6, -59.75) projected
  line L1 (-14, -59.75) -> (-14, -49.75)
  circle A0 centre (-14, -49.75) radius 2.3
  point P0 (0, 0)
  dimension "d111" = 10
  dimension "d112" = 4.6
extrude "Extrusion19" cut sketch "Sketch22" against normal up to surface
fillet "Fillet2" radius 2 4 edges at (4.1432, -12.25, -11.6117) (-32.1432, -12.25, -11.6117) (-32.1432, -12.25, 11.6117) (4.1432, -12.25, 11.6117)
fillet "Fillet3" radius 50 5 edges at (-14, -19.75, 13.4) (-27.4, -19.75, 0) (-14, -19.75, -13.4) (-1.1392, -19.75, 3.7631) (-1.1392, -19.75, -3.7631)
fillet "Fillet4" [suppressed]
chamfer "Chamfer1" distance 1 angle 45 2 edges at (-15, 22.75, -10) (-15, 26.75, -10)
ref_plane "Work Plane3" through (0, 0, -15.9) normal (0, 0, 1) x (1, 0, 0)
sketch "Sketch25" plane through (0, 0, -15.9) normal (0, 0, 1) x (1, 0, 0)
  spline S0 degree 8 poles (-11.7, -49.75) (-11.7, -49.5097) (-11.7287, -49.2698) (-11.7859, -49.0321) (-11.8723, -48.7988) (-11.9888, -48.5725) (-12.137, -48.3567) (-12.3183, -48.1562) (-12.7177, -47.8258) (-12.9335, -47.6839) (-13.1784, -47.5646) (-13.4462, -47.4772) (-13.7287, -47.428) (-14.0168, -47.4199) (-14.3008, -47.4526) (-14.852, -47.5941) (-15.1085, -47.7029) (-15.3387, -47.8407) (-15.5414, -48.0011) (-15.7165, -48.1787) (-15.8642, -48.3688) (-15.9854, -48.5672) (-16.1908, -49.0039) (-16.2689, -49.2473) (-16.3156, -49.4971) (-16.3311, -49.75) (-16.3156, -50.0029) (-16.2689, -50.2527) (-16.1908, -50.4961) (-15.9913, -50.9202) (-15.8793, -51.1063) (-15.7442, -51.285) (-15.5854, -51.4532) (-15.4024, -51.6074) (-15.195, -51.7431) (-14.9639, -51.8552) (-14.4711, -52.0153) (-14.2151, -52.0653) (-13.95, -52.0819) (-13.6839, -52.0629) (-13.4255, -52.009) (-13.1825, -51.9242) (-12.9617, -51.8152) (-12.4907, -51.5162) (-12.2578, -51.3051) (-12.0678, -51.0702) (-11.9188, -50.8193) (-11.8088, -50.5579) (-11.7362, -50.2904) (-11.7, -50.02) (-11.7, -49.75) knots 0 0 0 0 0 0 0 0 0 0.154765 0.154765 0.154765 0.154765 0.154765 0.154765 0.154765 0.286658 0.286658 0.286658 0.286658 0.286658 0.286658 0.286658 0.422821 0.422821 0.422821 0.422821 0.422821 0.422821 0.422821 0.578882 0.578882 0.578882 0.578882 0.578882 0.578882 0.578882 0.706632 0.706632 0.706632 0.706632 0.706632 0.706632 0.706632 0.827549 0.827549 0.827549 0.827549 0.827549 0.827549 0.827549 1 1 1 1 1 1 1 1 1 projected
  line L0 (-27.4, -59.75) -> (-0.6, -59.75) projected
  line L1 (-12.4508, -48.05) -> (-16.2649, -50.1503) construction
  line L2 (-12.0685, -50.9987) -> (-15.8752, -51.0817) construction
  line L3 (-13.9718, -51.0402) -> (-14.0129, -49.1567) construction
  line L4 (-14.3578, -49.1002) -> (-13.757, -50.1913) construction
  circle A0 centre (-14, -49.75) radius 4.3
  point P0 (0, 0)
  dimension "d125" = 8.6
extrude "Extrusion21" add sketch "Sketch25" along normal up to surface
sketch "Sketch26" plane through (11, 2, -16) normal (0, 0, -1) x (-1, 0, 0)
  line L0 (5.7835, 45.7367) -> (45.0889, 45.7367)
  point P0 (11, -2)
split body "Split1" sketch "Sketch26" result one side removed curves L0 removed pieces at (-13.9348, -47.852, 12.8998)
properties part number "prototype_8_1_3DPrint"
